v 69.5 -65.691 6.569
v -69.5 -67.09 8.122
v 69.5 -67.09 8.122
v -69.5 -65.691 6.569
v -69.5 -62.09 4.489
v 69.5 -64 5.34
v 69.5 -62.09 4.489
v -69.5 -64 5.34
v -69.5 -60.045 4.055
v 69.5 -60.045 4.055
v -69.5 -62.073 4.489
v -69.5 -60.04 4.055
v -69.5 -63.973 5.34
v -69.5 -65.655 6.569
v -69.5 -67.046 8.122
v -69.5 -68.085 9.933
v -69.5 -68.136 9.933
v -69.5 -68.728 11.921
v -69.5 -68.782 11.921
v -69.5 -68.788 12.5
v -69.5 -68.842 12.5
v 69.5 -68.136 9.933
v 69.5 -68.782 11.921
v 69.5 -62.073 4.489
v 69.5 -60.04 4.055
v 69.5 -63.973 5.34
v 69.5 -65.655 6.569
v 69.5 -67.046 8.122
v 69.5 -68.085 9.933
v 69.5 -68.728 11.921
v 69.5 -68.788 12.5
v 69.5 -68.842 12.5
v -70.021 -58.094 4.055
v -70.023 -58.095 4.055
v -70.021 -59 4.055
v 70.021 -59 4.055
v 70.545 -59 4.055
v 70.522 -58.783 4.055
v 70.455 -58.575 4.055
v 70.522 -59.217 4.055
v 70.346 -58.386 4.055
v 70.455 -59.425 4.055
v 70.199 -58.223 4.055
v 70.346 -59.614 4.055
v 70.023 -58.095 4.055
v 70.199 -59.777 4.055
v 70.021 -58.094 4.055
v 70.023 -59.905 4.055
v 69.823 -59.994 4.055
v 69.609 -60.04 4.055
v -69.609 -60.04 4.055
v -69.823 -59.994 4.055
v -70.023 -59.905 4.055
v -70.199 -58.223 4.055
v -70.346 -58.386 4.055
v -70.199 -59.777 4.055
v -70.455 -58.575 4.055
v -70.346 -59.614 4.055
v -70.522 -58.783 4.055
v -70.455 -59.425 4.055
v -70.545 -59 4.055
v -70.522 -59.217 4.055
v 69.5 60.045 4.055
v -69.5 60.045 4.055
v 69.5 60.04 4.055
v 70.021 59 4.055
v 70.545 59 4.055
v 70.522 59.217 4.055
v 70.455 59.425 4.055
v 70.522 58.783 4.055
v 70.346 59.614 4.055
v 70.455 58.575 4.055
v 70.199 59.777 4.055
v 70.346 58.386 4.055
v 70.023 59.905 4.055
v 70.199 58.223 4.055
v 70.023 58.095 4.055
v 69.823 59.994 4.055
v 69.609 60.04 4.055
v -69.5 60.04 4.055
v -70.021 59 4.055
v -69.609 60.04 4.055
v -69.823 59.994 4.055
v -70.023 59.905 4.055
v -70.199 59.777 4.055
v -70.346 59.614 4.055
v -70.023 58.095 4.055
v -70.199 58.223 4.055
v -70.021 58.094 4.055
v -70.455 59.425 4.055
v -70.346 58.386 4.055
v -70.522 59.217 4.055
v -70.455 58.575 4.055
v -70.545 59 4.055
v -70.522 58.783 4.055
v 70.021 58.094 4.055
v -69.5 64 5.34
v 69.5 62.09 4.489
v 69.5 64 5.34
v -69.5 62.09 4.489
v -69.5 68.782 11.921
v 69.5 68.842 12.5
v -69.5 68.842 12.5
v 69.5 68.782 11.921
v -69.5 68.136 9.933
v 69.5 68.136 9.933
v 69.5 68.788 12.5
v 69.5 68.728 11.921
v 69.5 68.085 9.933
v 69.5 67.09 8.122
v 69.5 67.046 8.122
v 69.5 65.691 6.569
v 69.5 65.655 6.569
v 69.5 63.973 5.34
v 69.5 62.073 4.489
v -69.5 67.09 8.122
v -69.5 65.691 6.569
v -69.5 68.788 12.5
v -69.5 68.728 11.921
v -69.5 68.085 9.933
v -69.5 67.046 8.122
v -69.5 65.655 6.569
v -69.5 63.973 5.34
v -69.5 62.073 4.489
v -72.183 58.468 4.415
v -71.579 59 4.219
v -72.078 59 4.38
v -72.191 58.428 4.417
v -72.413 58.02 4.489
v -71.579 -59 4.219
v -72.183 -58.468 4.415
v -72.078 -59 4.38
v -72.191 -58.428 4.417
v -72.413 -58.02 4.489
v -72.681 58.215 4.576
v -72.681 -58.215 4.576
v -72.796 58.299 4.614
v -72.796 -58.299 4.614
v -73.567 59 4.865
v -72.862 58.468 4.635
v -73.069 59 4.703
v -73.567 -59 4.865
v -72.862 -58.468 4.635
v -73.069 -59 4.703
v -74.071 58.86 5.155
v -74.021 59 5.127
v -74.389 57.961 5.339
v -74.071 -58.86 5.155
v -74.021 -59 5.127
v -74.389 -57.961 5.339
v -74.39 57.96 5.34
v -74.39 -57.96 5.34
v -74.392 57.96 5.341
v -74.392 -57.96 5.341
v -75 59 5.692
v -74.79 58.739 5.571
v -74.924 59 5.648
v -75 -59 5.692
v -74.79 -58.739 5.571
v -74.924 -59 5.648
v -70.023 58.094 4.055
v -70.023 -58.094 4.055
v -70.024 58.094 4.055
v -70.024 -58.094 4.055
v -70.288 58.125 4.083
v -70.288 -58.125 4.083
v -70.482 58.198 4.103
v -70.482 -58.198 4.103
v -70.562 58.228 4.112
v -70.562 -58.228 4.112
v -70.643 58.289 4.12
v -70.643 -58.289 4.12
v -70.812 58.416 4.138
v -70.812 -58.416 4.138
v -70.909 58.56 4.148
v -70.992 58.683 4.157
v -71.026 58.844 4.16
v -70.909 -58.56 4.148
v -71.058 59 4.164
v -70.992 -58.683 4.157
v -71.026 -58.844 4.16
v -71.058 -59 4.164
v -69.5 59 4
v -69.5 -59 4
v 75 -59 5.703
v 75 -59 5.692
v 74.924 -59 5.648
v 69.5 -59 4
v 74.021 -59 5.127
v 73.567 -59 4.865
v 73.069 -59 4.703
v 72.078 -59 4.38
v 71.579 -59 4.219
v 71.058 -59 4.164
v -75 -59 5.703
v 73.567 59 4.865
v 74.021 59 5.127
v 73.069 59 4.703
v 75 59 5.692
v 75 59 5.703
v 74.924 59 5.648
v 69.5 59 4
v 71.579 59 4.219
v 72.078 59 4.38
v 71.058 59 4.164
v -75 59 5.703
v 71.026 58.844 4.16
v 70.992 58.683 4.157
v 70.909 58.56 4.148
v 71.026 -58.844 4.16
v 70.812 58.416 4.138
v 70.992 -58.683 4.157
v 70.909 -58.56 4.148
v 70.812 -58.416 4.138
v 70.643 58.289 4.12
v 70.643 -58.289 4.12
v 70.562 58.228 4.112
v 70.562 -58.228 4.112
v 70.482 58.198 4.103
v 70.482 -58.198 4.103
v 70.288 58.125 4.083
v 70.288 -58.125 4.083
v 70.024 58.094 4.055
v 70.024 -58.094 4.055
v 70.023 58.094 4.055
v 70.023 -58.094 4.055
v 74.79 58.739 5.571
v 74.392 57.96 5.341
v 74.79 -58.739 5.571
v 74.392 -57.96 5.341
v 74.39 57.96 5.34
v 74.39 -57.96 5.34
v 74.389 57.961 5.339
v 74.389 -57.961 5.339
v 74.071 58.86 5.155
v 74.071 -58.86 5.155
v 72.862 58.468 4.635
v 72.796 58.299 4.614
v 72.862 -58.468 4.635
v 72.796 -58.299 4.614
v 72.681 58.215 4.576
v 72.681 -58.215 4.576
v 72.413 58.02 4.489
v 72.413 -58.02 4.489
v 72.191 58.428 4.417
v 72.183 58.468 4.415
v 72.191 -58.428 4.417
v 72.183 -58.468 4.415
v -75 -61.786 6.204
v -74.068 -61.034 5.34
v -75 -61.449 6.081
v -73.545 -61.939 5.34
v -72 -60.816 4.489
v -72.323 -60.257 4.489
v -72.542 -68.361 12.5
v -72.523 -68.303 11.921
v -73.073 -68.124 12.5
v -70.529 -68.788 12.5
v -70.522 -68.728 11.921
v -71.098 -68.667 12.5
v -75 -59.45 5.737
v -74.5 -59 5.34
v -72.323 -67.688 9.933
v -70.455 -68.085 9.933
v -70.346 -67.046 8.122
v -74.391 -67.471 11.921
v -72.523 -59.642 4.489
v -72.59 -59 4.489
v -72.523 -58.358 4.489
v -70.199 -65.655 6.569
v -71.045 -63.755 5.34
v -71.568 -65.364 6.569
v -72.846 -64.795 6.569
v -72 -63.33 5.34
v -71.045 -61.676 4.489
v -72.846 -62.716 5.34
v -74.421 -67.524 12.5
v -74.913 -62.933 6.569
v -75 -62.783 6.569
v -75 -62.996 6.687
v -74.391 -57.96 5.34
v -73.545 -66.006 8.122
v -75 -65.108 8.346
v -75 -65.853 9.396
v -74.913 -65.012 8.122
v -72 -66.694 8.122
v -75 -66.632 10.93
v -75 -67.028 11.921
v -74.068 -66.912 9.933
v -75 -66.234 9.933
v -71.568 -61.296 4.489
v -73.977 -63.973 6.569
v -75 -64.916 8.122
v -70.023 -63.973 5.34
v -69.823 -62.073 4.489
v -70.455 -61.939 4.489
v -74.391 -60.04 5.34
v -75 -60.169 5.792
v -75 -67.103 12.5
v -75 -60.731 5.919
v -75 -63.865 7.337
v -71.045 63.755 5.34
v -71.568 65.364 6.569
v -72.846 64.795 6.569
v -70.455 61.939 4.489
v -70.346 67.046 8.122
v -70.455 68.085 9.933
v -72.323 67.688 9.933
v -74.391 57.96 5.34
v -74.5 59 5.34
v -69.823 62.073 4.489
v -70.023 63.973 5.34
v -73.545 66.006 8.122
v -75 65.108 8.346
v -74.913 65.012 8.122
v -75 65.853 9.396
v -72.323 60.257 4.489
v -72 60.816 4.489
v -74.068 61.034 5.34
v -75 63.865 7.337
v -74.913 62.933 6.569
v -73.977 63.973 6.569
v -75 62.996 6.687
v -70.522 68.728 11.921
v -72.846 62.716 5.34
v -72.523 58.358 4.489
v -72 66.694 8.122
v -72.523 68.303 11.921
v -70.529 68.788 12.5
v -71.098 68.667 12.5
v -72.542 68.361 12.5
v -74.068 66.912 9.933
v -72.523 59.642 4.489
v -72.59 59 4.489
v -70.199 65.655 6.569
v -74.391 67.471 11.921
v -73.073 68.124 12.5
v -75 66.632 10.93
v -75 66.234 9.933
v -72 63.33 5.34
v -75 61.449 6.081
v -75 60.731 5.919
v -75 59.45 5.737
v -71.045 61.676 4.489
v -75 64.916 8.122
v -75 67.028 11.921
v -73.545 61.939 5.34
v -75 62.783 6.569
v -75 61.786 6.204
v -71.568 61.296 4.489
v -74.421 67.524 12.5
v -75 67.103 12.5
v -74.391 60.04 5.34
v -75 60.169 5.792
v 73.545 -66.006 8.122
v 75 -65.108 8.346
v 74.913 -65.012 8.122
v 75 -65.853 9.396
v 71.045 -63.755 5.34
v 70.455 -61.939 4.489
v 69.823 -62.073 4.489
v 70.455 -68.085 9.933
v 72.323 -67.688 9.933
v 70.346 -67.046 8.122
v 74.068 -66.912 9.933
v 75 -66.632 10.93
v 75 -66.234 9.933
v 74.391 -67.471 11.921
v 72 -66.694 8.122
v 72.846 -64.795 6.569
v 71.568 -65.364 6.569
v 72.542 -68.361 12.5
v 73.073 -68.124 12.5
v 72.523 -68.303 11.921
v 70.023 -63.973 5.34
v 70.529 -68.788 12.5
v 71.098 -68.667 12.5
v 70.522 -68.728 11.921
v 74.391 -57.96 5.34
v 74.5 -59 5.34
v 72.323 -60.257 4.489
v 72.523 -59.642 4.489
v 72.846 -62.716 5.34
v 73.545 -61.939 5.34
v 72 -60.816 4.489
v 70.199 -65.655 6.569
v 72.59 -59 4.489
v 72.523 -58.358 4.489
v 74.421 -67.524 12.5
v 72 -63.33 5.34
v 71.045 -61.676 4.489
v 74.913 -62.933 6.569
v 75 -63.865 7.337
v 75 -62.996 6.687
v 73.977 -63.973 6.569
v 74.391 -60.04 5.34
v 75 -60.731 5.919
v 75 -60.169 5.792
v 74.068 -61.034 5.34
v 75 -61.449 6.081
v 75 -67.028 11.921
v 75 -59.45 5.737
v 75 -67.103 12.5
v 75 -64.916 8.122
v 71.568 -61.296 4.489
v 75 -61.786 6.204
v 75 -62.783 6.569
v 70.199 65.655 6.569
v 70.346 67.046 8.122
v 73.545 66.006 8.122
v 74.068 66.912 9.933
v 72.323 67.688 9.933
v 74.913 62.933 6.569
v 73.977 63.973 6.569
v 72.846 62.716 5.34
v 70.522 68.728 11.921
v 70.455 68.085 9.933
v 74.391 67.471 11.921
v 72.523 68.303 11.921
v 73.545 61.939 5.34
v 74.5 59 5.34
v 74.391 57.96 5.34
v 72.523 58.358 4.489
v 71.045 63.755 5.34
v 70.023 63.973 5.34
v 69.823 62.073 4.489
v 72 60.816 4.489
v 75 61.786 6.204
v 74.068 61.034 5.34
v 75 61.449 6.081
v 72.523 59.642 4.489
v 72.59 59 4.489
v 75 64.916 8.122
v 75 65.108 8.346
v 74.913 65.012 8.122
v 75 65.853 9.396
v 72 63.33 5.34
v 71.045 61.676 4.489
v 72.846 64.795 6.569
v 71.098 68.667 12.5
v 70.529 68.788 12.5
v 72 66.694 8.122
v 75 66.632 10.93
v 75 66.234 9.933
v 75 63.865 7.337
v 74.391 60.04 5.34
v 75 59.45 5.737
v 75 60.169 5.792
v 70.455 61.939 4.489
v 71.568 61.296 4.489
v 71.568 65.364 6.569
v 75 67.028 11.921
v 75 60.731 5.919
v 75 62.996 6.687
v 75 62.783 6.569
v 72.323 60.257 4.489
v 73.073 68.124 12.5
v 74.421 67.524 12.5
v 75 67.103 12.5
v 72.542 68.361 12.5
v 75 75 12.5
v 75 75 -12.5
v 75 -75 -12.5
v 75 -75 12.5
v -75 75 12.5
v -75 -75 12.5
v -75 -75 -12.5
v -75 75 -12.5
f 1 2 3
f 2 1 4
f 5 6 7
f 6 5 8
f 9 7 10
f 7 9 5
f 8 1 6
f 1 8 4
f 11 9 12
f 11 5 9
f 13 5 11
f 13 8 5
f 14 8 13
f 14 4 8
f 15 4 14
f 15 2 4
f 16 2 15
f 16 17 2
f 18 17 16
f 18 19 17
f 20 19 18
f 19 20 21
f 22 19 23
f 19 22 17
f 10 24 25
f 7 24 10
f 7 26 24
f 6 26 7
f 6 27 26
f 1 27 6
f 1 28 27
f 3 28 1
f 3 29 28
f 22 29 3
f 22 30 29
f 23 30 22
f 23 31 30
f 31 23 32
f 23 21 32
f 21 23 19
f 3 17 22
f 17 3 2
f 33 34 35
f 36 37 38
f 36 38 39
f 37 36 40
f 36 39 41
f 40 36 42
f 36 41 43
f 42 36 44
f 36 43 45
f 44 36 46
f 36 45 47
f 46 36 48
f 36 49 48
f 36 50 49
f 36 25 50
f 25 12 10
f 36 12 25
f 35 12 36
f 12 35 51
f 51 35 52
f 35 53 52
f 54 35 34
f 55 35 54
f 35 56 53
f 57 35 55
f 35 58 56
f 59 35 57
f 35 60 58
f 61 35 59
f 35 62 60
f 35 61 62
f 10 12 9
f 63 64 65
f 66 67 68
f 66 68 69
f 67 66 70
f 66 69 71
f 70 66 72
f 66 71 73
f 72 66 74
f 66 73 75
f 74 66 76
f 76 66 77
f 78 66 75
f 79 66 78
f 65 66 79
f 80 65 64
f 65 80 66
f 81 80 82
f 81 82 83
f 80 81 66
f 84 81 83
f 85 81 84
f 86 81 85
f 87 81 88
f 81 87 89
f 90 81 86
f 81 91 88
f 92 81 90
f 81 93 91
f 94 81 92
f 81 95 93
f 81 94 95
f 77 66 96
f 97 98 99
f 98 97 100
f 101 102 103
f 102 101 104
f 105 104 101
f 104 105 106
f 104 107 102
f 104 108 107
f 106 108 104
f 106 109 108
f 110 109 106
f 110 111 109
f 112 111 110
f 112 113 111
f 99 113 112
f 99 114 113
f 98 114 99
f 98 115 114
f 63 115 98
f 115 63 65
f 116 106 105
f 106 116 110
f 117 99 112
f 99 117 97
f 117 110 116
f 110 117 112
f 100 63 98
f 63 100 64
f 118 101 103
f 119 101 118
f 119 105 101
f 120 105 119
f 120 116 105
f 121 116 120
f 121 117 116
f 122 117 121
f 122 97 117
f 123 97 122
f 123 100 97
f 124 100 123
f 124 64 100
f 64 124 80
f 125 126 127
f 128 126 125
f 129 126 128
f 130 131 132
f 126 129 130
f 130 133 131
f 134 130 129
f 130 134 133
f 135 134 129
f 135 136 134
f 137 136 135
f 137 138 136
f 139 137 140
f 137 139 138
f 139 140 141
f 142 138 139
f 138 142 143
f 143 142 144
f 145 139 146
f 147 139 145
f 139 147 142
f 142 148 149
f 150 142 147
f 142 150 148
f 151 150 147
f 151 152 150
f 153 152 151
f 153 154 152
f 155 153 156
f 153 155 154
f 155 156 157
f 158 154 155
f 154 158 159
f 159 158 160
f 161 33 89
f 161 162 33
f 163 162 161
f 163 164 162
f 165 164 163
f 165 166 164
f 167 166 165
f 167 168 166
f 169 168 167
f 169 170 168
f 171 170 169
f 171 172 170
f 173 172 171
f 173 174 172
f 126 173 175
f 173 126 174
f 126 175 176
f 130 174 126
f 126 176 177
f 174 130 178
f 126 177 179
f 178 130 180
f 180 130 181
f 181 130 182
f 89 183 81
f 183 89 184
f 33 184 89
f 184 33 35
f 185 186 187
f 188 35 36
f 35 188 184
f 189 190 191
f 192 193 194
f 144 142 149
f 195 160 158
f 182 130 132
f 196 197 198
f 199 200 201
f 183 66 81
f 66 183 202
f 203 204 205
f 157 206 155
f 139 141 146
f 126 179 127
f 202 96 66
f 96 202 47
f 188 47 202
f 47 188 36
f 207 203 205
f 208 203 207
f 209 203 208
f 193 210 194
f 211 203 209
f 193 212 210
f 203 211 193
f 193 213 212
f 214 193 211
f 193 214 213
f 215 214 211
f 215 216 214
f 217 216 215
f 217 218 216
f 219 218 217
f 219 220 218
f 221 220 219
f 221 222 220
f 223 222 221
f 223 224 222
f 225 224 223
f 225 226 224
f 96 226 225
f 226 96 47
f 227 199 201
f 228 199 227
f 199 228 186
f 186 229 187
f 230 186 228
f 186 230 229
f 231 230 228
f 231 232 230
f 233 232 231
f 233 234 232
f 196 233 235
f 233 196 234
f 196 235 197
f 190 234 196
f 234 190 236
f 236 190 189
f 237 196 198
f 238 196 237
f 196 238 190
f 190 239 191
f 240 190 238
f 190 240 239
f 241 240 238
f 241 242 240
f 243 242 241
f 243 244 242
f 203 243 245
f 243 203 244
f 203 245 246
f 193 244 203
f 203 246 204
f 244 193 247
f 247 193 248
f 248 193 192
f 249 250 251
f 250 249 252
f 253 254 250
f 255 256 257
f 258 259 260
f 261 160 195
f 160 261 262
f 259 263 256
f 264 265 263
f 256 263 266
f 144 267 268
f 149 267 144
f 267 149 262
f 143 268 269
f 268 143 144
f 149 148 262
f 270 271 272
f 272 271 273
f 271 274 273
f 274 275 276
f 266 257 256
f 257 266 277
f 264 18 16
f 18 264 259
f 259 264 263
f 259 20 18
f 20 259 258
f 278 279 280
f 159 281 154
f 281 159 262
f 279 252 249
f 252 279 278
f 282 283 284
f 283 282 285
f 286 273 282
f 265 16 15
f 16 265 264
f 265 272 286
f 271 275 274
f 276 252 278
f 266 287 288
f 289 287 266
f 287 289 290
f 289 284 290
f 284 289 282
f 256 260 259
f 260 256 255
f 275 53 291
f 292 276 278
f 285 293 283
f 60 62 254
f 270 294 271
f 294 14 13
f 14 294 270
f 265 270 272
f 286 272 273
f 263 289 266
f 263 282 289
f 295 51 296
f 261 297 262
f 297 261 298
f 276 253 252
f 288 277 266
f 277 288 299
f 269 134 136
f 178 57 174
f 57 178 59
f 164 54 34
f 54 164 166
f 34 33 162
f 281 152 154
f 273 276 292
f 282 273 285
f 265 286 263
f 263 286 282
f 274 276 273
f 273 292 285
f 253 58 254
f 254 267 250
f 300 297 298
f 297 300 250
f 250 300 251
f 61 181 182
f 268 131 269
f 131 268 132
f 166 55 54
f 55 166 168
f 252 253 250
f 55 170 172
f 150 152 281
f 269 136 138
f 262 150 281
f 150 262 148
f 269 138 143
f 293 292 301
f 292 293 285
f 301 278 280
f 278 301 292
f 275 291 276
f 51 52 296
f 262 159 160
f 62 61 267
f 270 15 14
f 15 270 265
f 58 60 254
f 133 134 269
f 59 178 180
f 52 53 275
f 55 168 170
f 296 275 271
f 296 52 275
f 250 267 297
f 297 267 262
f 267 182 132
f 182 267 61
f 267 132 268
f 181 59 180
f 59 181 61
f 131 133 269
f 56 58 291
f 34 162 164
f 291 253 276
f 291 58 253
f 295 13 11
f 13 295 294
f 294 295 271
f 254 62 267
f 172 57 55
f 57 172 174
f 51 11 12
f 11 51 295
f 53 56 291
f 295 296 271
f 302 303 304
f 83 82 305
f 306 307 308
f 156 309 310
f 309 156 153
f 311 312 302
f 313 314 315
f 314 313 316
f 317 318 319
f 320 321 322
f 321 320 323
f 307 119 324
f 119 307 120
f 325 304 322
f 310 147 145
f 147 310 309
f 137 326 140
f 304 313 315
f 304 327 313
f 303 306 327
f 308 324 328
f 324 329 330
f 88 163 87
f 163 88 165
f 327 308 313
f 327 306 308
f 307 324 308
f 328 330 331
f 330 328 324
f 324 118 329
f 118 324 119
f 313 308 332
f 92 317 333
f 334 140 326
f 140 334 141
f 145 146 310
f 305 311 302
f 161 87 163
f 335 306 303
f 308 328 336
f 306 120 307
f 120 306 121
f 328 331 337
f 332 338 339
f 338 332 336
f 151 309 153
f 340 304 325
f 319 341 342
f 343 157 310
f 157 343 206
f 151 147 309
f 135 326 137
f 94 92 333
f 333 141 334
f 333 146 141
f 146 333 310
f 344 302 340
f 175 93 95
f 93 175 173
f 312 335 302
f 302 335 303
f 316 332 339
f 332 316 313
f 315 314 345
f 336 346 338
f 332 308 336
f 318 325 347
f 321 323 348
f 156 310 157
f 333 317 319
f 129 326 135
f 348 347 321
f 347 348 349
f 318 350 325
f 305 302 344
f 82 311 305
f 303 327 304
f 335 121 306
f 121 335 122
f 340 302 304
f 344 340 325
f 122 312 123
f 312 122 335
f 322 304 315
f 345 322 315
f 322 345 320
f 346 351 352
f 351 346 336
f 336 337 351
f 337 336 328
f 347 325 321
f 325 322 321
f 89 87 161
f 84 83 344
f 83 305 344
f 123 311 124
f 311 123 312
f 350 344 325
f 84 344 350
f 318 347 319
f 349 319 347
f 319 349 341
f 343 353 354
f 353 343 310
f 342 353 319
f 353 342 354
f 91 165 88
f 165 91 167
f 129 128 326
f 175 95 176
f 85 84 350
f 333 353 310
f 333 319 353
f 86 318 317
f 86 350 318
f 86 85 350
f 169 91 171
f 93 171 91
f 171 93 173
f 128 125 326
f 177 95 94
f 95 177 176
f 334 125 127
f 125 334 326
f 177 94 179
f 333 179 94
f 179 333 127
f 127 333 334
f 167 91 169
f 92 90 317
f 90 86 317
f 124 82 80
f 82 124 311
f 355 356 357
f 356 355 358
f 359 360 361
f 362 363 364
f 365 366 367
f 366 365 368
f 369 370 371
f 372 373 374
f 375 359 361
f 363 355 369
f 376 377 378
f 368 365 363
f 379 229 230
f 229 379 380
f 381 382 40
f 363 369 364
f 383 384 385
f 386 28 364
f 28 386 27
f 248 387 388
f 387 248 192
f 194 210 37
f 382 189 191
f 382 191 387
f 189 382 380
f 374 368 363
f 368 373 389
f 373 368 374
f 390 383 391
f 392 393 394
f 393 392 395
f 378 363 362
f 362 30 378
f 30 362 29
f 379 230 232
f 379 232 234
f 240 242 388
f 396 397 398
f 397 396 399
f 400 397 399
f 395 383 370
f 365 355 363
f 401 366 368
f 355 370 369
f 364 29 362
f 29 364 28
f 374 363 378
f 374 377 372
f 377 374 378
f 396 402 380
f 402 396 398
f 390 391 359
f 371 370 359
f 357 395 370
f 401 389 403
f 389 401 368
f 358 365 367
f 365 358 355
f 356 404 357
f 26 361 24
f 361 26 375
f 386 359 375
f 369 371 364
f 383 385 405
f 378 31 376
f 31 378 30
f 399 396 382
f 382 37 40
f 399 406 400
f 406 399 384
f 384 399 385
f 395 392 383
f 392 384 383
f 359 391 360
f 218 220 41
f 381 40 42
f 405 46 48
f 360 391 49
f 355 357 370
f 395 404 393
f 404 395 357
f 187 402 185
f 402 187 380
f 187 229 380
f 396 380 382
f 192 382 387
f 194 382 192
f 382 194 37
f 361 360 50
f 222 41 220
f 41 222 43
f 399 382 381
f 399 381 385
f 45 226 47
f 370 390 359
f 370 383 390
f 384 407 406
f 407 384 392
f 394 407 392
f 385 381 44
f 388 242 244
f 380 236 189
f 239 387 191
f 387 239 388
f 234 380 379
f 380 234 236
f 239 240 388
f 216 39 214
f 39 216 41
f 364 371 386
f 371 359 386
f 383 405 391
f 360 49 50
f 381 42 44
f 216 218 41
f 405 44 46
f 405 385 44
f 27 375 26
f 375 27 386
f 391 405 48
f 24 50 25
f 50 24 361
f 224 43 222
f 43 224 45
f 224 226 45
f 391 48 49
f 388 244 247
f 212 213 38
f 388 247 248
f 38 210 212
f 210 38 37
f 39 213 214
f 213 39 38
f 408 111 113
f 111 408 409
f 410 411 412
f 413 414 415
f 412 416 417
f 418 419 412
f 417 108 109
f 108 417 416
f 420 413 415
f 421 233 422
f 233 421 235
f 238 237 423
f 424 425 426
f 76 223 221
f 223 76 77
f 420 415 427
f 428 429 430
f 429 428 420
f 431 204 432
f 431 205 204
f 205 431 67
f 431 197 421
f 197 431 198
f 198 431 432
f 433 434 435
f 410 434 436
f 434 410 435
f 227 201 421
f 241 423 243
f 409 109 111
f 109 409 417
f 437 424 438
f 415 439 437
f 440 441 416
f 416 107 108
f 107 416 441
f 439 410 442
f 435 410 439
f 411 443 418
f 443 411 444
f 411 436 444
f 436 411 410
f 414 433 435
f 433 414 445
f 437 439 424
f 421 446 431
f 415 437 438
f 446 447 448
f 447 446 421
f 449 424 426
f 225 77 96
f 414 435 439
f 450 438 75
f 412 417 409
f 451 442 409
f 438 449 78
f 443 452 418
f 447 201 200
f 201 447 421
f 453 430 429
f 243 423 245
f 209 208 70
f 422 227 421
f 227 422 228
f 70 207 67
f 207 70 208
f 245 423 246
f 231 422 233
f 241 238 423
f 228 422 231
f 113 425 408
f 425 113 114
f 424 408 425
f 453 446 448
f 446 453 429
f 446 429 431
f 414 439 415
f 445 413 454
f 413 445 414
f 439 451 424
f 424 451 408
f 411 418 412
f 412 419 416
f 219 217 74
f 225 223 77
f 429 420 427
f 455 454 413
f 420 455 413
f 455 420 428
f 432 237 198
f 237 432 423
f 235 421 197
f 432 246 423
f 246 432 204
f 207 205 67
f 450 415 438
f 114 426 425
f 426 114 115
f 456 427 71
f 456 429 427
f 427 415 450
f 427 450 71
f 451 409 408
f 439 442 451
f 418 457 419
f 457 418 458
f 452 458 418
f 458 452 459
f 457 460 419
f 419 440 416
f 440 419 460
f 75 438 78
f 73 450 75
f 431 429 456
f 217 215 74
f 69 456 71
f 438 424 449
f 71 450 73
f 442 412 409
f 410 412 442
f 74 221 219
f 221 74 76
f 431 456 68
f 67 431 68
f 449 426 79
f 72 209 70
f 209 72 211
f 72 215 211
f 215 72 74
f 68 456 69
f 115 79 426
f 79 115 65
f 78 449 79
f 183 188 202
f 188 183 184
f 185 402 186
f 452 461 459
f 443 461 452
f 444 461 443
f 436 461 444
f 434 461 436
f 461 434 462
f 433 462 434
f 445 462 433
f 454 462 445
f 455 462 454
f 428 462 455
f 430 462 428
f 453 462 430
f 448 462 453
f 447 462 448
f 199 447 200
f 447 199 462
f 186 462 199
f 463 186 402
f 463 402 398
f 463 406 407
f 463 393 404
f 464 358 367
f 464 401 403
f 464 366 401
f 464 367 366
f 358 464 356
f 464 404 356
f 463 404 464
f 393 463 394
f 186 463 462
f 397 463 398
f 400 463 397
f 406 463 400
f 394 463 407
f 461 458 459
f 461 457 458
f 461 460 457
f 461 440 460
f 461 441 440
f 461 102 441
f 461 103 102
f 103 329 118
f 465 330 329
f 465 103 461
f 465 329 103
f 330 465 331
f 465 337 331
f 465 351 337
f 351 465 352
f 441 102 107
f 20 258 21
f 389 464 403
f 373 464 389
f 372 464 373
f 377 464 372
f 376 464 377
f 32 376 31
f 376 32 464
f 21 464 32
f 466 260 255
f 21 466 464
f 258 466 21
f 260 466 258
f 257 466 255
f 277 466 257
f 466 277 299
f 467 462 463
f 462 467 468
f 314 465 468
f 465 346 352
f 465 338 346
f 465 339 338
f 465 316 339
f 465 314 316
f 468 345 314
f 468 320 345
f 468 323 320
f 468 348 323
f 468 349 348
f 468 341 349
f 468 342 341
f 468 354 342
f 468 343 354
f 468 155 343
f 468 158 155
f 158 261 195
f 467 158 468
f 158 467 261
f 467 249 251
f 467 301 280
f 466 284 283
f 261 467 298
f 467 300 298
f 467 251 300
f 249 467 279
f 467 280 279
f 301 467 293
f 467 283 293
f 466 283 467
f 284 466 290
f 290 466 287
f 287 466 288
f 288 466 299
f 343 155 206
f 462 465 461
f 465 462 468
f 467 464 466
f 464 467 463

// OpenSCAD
include <MCAD/boxes.scad>

difference() { 
  cube([150, 150 , 25], center=true);
  translate([0, 0, 14])
    roundedBox([159, 150 - 6*2, 20],  radius=10);
}
